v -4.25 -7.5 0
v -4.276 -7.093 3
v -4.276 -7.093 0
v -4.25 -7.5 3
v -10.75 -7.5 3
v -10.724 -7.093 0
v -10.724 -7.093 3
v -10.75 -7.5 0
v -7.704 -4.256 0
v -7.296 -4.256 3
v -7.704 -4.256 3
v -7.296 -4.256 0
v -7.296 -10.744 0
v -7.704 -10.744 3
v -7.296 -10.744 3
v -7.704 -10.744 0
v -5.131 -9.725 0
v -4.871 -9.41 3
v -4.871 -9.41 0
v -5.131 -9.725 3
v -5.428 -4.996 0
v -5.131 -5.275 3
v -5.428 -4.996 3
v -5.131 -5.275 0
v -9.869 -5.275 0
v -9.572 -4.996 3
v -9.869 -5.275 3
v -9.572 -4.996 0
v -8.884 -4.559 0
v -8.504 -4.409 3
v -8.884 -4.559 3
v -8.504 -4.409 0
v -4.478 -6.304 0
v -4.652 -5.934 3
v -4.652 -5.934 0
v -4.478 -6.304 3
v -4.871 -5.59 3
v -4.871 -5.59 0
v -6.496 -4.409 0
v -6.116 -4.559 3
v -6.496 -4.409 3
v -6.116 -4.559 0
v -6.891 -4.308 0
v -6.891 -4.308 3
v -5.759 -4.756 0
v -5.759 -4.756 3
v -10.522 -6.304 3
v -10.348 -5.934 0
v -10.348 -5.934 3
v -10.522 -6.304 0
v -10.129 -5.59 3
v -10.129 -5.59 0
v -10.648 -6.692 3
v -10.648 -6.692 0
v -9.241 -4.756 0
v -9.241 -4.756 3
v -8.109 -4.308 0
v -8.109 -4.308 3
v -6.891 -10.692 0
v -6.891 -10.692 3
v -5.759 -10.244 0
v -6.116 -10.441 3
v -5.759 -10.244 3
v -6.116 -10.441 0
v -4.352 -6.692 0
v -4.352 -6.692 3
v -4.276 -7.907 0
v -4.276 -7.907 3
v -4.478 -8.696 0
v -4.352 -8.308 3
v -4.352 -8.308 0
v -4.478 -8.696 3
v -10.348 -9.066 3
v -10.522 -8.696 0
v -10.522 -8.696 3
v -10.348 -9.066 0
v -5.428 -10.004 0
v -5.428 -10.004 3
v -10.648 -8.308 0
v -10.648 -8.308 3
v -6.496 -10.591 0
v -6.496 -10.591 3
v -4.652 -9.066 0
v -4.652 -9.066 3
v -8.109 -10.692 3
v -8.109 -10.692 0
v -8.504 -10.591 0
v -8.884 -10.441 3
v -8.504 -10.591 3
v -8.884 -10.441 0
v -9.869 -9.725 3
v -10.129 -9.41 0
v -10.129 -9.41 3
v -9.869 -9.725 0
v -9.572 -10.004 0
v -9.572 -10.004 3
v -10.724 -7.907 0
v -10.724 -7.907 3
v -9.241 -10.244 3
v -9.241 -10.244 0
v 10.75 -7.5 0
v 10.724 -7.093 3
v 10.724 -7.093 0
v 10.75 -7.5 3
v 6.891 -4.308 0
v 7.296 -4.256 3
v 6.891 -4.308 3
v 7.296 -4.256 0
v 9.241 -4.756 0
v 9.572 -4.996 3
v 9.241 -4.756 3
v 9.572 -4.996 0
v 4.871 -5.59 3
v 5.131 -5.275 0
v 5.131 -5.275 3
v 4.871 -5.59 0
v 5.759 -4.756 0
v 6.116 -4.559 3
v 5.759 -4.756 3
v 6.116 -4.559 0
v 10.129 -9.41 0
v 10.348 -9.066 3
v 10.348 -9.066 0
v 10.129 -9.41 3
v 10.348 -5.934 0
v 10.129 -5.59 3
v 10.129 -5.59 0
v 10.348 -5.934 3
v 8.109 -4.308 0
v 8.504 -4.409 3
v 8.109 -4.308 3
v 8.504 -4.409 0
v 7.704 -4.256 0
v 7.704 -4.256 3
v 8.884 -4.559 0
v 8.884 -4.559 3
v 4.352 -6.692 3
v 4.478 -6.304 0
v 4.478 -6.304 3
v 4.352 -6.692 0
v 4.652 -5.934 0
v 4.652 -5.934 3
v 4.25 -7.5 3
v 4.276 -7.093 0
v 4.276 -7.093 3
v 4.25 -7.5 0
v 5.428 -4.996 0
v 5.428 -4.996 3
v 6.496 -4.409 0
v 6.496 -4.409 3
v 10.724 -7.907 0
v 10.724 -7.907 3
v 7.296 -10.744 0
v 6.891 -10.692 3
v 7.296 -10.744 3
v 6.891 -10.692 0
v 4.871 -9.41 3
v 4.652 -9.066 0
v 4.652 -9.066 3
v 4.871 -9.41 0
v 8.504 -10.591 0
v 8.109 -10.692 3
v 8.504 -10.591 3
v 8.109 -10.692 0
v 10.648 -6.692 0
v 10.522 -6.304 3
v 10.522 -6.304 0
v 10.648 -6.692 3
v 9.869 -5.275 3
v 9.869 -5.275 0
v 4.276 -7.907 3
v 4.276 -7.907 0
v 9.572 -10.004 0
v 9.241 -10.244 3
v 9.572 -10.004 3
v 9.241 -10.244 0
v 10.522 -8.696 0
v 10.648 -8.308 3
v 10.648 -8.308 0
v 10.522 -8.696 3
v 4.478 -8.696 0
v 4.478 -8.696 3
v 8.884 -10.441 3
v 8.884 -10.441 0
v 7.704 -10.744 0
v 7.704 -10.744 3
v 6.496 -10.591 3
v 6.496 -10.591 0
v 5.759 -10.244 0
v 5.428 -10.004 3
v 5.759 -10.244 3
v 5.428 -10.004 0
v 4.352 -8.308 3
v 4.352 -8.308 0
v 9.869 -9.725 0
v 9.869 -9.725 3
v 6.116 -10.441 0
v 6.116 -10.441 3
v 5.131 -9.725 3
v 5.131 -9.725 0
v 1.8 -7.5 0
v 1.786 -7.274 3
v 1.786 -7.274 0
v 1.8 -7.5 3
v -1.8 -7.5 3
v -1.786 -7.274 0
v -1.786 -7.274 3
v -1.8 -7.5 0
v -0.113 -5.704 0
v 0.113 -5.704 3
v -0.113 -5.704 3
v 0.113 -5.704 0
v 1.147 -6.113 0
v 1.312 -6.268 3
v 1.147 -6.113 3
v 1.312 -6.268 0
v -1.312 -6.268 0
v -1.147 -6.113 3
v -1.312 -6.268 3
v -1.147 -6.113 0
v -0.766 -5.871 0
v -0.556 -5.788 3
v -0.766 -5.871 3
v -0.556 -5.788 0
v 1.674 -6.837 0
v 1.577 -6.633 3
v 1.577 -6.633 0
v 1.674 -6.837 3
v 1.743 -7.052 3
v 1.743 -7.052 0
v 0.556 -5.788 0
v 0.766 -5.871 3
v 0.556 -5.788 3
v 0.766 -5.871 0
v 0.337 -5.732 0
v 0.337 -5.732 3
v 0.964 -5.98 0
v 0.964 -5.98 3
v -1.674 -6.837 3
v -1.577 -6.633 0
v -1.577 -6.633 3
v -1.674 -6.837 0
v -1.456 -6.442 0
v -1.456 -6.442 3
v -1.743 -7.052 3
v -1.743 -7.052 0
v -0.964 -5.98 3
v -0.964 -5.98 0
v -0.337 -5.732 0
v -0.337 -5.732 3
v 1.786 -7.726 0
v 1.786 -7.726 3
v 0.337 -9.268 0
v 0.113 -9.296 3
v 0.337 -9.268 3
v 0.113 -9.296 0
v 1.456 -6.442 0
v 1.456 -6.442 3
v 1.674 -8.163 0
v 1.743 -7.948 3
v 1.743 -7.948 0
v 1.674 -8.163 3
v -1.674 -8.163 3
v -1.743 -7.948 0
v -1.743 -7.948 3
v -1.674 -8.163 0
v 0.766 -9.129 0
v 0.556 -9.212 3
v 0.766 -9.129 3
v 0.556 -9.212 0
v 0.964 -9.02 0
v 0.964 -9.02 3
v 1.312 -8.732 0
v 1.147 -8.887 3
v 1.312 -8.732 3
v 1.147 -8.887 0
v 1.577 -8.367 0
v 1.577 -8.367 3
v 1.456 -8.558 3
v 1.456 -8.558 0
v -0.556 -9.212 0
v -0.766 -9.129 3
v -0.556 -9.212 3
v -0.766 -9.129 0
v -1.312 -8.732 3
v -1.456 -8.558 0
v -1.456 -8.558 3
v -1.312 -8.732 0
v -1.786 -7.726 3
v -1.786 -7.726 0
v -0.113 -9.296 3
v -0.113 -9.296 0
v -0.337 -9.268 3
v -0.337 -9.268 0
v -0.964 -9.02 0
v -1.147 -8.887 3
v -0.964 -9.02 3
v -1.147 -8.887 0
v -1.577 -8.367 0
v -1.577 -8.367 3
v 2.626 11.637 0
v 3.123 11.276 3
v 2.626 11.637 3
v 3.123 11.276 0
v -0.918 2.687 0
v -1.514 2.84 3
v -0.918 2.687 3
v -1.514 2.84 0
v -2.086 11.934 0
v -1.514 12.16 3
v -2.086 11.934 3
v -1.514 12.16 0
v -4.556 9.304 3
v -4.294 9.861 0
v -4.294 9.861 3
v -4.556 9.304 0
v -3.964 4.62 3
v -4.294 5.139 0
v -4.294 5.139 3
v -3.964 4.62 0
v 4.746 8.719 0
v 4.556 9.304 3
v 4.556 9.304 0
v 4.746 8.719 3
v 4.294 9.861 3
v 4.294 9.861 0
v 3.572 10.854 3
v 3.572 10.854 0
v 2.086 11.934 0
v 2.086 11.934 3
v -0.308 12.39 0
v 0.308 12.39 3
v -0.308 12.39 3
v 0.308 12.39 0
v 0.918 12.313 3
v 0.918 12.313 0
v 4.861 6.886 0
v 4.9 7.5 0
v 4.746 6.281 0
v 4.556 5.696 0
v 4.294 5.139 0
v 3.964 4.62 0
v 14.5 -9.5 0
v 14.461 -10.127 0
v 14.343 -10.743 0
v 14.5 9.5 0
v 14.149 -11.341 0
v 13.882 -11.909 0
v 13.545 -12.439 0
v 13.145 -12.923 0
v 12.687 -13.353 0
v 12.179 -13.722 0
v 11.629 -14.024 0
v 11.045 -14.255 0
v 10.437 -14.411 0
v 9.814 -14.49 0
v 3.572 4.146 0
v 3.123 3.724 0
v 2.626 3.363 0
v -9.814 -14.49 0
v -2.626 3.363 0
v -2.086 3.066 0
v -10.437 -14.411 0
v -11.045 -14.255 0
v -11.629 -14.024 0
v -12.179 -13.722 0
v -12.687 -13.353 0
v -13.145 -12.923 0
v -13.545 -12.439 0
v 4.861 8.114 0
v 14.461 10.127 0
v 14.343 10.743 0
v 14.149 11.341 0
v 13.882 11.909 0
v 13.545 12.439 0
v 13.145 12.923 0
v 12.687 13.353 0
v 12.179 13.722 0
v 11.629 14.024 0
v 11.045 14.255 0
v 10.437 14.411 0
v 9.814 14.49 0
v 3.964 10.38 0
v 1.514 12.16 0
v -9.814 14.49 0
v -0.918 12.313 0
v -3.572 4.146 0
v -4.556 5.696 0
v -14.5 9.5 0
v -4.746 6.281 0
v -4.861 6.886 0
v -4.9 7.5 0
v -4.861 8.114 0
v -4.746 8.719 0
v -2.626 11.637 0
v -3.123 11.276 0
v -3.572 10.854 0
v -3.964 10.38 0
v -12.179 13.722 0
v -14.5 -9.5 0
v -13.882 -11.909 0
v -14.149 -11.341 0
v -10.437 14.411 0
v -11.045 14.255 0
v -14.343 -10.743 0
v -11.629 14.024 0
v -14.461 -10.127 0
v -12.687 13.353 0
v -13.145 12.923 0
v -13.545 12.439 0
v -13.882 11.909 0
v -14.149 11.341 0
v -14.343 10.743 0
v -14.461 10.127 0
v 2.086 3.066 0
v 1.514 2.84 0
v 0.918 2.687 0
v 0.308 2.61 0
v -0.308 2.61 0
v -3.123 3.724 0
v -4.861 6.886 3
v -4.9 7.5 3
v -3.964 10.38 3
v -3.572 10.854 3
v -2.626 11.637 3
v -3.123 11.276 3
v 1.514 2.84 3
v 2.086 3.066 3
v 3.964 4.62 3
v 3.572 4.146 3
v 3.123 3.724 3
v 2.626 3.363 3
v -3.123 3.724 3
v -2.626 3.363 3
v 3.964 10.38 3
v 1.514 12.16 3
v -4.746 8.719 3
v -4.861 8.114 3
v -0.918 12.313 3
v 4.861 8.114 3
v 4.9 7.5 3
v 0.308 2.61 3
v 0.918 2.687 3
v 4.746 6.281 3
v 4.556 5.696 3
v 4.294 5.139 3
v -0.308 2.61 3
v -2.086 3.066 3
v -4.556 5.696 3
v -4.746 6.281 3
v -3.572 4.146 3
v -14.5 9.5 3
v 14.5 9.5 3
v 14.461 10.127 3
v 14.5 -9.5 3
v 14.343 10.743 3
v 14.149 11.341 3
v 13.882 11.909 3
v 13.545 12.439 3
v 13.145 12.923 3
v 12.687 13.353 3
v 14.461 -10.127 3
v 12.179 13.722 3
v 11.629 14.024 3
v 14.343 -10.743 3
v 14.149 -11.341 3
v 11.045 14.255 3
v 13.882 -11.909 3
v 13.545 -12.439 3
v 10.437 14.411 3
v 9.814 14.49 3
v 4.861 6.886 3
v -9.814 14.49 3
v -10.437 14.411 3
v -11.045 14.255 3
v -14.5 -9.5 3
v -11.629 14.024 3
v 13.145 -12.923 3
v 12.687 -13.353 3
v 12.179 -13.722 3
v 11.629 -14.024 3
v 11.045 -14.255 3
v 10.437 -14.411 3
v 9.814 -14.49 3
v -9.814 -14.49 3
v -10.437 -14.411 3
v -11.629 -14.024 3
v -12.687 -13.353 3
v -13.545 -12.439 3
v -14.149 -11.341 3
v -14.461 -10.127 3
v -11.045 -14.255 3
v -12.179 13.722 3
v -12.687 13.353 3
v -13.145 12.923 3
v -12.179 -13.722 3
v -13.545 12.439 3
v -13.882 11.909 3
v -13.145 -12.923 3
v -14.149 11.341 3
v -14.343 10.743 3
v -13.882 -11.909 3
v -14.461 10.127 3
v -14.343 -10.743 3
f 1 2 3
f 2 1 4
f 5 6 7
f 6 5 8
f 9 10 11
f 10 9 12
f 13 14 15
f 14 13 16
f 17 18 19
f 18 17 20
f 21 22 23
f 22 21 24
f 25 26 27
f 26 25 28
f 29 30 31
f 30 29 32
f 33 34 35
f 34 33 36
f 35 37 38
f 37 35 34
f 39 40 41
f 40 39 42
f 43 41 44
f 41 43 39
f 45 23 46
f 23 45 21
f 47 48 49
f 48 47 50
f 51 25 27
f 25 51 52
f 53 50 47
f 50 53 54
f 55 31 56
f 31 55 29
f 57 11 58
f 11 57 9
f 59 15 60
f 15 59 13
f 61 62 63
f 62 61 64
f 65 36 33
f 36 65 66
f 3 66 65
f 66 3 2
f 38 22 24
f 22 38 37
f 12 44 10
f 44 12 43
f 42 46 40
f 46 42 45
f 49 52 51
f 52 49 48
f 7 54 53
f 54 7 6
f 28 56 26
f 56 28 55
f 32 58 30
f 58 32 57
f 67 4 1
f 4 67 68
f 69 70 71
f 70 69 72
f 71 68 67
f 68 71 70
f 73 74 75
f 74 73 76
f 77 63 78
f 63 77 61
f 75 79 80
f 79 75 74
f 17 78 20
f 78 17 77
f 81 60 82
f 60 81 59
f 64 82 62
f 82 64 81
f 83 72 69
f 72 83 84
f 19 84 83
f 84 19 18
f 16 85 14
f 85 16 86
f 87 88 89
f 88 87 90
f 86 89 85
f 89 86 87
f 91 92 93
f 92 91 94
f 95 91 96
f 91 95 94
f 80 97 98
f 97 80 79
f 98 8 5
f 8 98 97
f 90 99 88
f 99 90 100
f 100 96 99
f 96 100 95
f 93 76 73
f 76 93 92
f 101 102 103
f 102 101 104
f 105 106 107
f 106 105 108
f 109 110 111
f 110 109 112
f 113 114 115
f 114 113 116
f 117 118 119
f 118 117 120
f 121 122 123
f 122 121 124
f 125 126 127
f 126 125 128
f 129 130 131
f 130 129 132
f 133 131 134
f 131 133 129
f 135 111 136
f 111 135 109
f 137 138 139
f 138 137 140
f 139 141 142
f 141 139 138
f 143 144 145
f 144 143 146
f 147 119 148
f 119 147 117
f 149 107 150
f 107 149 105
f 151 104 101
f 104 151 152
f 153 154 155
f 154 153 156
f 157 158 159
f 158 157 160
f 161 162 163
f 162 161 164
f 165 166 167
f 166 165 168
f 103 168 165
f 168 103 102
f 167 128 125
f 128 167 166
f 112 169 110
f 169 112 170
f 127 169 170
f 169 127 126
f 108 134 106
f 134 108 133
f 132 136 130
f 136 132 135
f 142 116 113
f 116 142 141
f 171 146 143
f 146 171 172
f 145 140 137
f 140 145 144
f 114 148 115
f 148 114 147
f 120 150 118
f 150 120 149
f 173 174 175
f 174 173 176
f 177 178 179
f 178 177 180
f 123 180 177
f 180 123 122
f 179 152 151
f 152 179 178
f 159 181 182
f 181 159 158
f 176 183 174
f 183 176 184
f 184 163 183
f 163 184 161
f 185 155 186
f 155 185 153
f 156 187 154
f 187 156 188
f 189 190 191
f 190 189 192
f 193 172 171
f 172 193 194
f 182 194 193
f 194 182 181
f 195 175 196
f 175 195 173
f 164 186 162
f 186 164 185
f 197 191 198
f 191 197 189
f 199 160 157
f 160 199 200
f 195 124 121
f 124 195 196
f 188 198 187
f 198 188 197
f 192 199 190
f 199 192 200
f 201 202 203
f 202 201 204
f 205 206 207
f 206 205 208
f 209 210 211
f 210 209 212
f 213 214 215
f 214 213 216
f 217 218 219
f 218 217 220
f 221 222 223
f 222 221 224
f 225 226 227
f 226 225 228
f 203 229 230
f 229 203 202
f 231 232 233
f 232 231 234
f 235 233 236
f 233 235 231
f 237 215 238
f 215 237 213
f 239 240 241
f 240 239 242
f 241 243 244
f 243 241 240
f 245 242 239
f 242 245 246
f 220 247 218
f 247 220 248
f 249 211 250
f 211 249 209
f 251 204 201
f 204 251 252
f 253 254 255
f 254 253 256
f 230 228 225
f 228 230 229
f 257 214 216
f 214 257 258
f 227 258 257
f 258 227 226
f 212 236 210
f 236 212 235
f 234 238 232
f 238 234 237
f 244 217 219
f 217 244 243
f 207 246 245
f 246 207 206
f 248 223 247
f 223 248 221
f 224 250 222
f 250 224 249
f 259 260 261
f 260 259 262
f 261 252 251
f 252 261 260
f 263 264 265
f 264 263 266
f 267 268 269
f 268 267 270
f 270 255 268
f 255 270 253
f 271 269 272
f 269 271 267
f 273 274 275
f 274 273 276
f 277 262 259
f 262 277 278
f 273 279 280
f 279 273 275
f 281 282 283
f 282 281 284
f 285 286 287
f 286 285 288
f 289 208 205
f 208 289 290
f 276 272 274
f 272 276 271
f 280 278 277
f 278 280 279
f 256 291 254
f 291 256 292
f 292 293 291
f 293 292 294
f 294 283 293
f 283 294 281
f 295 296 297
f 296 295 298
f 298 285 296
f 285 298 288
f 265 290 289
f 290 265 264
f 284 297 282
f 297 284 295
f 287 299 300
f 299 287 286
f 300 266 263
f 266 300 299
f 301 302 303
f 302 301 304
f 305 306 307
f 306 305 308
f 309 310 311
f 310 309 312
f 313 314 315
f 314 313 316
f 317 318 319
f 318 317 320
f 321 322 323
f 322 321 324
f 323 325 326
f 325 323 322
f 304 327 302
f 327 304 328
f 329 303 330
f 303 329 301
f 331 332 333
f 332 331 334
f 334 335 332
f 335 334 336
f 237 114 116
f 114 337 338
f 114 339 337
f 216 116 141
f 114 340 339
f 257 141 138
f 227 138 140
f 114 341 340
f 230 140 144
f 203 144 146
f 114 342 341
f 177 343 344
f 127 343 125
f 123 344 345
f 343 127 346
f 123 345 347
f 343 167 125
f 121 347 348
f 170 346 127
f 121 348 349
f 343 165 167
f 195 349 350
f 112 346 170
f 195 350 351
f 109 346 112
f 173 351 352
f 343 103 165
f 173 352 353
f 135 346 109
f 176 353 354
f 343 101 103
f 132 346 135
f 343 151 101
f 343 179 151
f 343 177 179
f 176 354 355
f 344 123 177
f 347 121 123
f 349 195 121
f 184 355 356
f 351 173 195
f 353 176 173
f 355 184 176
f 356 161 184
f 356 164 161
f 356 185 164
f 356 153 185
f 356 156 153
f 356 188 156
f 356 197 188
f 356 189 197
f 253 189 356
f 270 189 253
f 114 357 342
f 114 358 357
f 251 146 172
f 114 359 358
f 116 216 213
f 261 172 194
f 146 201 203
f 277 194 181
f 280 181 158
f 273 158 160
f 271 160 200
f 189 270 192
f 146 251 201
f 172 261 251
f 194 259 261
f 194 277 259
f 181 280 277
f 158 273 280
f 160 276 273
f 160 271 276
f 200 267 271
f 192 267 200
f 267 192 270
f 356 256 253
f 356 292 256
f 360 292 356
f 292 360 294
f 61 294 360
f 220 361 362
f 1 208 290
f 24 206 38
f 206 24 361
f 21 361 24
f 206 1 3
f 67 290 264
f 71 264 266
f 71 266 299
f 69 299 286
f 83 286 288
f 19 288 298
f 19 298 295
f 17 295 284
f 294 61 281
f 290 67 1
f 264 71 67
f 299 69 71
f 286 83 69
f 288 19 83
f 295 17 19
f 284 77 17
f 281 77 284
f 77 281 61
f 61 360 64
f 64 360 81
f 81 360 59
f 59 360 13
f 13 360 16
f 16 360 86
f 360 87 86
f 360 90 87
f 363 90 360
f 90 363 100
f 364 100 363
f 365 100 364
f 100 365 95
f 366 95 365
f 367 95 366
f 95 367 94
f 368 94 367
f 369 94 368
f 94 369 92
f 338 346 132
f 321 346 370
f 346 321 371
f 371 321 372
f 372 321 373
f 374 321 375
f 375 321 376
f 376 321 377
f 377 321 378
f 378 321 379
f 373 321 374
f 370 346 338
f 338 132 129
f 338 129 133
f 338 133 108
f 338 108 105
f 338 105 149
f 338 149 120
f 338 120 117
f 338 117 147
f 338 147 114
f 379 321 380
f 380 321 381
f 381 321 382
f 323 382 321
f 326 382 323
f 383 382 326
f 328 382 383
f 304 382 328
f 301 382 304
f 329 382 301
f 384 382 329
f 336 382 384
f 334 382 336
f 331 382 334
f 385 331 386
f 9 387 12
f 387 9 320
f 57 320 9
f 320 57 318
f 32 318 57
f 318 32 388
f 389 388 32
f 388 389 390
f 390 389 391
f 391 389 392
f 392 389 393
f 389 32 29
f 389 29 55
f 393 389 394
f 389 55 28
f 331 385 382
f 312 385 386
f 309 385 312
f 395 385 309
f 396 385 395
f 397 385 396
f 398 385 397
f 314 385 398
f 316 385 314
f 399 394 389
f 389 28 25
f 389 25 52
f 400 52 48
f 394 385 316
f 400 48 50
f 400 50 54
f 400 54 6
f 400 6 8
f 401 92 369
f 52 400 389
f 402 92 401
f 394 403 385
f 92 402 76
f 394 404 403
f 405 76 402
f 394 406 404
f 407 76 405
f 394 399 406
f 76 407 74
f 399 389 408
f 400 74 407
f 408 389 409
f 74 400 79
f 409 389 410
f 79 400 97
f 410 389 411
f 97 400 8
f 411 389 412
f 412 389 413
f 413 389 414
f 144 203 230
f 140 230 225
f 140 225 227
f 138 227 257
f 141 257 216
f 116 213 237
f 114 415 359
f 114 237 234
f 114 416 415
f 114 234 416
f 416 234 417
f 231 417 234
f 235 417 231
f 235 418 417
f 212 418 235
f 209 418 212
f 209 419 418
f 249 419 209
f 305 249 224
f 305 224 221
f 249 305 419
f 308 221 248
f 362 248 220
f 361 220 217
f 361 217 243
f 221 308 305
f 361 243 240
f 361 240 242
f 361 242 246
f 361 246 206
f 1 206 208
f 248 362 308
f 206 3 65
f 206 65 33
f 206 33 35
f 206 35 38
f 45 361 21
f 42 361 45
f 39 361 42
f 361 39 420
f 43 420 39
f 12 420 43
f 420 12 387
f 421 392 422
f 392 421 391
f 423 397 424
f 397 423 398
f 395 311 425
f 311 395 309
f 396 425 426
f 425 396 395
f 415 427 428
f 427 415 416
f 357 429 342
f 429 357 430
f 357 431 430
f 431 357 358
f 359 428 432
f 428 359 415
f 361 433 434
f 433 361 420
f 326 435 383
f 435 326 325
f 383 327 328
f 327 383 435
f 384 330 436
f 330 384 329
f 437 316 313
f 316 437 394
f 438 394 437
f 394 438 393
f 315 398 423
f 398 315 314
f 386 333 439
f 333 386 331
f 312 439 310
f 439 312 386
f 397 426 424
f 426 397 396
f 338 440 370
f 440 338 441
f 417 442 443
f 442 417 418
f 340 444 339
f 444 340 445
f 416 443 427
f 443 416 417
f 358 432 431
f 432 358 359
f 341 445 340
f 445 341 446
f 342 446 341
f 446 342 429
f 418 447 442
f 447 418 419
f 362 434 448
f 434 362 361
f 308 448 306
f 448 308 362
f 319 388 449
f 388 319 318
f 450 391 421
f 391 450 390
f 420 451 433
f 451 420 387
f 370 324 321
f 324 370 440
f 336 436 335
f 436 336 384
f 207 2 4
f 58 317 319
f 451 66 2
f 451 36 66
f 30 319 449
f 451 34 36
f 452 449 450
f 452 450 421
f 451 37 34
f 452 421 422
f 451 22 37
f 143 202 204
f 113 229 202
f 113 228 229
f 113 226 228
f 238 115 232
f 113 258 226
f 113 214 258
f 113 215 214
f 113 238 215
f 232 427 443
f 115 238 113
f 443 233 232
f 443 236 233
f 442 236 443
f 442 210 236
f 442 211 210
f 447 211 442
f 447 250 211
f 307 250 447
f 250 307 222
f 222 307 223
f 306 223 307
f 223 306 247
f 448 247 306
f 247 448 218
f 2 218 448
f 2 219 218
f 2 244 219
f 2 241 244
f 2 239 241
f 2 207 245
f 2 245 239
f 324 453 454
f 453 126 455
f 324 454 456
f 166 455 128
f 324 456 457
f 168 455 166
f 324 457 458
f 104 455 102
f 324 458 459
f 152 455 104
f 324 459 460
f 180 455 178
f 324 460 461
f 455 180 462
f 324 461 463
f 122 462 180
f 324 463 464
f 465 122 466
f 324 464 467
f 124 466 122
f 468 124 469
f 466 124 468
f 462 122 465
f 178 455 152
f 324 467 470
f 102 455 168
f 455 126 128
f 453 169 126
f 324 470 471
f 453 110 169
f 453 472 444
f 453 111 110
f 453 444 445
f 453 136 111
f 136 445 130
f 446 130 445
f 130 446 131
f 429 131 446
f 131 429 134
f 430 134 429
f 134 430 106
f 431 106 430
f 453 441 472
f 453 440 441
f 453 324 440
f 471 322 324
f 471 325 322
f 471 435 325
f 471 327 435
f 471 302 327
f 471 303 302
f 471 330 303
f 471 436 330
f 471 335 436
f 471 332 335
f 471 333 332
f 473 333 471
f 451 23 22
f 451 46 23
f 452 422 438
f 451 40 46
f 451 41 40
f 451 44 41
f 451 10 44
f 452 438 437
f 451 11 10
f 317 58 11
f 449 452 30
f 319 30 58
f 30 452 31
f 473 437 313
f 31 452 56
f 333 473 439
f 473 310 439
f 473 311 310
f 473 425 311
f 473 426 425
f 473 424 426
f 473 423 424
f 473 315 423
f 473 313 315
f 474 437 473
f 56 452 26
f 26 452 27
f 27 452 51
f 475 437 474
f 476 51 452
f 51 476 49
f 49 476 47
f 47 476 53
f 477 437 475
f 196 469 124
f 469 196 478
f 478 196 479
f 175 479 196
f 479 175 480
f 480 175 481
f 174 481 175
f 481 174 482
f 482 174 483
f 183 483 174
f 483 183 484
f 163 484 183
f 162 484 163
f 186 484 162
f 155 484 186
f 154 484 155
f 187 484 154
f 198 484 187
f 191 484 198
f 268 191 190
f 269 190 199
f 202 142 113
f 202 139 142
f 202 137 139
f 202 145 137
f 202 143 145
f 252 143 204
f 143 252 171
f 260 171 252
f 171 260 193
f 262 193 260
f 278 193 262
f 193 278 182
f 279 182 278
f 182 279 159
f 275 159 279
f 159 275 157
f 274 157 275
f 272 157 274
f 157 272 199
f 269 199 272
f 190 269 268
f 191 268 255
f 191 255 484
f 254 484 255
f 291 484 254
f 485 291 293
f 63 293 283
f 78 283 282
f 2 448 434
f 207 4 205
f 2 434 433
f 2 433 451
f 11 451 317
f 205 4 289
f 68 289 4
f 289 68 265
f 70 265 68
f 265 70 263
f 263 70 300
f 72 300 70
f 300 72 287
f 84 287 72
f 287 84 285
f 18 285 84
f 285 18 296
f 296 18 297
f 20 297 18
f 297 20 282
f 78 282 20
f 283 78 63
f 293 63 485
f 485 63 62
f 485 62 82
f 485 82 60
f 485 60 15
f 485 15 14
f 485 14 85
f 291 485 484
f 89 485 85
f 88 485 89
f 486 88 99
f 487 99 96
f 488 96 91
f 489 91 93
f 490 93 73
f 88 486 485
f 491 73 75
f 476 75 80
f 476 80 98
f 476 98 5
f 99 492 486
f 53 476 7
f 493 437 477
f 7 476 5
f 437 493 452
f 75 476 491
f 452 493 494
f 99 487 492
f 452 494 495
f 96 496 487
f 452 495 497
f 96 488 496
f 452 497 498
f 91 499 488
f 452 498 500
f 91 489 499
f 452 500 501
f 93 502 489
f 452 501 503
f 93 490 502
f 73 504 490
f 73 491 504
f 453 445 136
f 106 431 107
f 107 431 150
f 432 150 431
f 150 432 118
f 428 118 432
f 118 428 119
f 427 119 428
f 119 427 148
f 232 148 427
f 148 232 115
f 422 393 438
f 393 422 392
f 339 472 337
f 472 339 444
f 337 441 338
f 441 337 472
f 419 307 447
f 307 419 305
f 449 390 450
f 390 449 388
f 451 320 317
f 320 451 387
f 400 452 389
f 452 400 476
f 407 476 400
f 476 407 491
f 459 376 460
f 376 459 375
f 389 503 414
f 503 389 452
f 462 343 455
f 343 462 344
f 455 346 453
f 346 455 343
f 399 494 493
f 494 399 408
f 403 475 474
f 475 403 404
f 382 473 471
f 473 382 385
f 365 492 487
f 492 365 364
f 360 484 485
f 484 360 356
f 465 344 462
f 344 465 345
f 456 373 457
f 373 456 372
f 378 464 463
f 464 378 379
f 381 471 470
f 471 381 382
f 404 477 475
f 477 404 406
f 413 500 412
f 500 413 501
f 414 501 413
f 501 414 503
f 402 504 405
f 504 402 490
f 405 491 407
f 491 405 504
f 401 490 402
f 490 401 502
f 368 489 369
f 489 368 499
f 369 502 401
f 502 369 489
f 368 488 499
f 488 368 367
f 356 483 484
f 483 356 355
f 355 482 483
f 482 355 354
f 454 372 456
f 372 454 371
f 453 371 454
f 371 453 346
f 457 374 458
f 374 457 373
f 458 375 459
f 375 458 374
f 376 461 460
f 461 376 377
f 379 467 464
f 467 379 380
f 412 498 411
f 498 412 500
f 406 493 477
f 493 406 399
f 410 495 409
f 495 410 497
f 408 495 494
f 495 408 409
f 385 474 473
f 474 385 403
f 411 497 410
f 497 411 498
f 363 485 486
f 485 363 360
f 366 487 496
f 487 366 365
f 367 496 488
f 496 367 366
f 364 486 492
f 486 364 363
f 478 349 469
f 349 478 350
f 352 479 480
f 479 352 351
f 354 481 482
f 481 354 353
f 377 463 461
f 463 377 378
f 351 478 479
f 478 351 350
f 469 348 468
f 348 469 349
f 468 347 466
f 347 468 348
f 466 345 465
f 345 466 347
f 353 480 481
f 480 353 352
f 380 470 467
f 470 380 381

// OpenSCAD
$fn = 50;


difference() {
	union() {
		hull() {
			translate(v = [-9.5000000000, 9.5000000000, 0]) {
				cylinder(h = 3, r = 5);
			}
			translate(v = [9.5000000000, 9.5000000000, 0]) {
				cylinder(h = 3, r = 5);
			}
			translate(v = [-9.5000000000, -9.5000000000, 0]) {
				cylinder(h = 3, r = 5);
			}
			translate(v = [9.5000000000, -9.5000000000, 0]) {
				cylinder(h = 3, r = 5);
			}
		}
	}
	union() {
		translate(v = [-7.5000000000, -7.5000000000, -100.0000000000]) {
			cylinder(h = 200, r = 3.2500000000);
		}
		translate(v = [7.5000000000, -7.5000000000, -100.0000000000]) {
			cylinder(h = 200, r = 3.2500000000);
		}
		translate(v = [-7.5000000000, -7.5000000000, -100.0000000000]) {
			cylinder(h = 200, r = 1.8000000000);
		}
		translate(v = [0.0000000000, -7.5000000000, -100.0000000000]) {
			cylinder(h = 200, r = 1.8000000000);
		}
		translate(v = [7.5000000000, -7.5000000000, -100.0000000000]) {
			cylinder(h = 200, r = 1.8000000000);
		}
		translate(v = [-7.5000000000, -7.5000000000, -100.0000000000]) {
			cylinder(h = 200, r = 1.8000000000);
		}
		translate(v = [0.0000000000, -7.5000000000, -100.0000000000]) {
			cylinder(h = 200, r = 1.8000000000);
		}
		translate(v = [7.5000000000, -7.5000000000, -100.0000000000]) {
			cylinder(h = 200, r = 1.8000000000);
		}
		translate(v = [-7.5000000000, -7.5000000000, -100.0000000000]) {
			cylinder(h = 200, r = 1.8000000000);
		}
		translate(v = [0.0000000000, -7.5000000000, -100.0000000000]) {
			cylinder(h = 200, r = 1.8000000000);
		}
		translate(v = [7.5000000000, -7.5000000000, -100.0000000000]) {
			cylinder(h = 200, r = 1.8000000000);
		}
		#translate(v = [0, 7.5000000000, 0]) {
			cylinder(h = 3, r = 4.9000000000);
		}
	}
}
